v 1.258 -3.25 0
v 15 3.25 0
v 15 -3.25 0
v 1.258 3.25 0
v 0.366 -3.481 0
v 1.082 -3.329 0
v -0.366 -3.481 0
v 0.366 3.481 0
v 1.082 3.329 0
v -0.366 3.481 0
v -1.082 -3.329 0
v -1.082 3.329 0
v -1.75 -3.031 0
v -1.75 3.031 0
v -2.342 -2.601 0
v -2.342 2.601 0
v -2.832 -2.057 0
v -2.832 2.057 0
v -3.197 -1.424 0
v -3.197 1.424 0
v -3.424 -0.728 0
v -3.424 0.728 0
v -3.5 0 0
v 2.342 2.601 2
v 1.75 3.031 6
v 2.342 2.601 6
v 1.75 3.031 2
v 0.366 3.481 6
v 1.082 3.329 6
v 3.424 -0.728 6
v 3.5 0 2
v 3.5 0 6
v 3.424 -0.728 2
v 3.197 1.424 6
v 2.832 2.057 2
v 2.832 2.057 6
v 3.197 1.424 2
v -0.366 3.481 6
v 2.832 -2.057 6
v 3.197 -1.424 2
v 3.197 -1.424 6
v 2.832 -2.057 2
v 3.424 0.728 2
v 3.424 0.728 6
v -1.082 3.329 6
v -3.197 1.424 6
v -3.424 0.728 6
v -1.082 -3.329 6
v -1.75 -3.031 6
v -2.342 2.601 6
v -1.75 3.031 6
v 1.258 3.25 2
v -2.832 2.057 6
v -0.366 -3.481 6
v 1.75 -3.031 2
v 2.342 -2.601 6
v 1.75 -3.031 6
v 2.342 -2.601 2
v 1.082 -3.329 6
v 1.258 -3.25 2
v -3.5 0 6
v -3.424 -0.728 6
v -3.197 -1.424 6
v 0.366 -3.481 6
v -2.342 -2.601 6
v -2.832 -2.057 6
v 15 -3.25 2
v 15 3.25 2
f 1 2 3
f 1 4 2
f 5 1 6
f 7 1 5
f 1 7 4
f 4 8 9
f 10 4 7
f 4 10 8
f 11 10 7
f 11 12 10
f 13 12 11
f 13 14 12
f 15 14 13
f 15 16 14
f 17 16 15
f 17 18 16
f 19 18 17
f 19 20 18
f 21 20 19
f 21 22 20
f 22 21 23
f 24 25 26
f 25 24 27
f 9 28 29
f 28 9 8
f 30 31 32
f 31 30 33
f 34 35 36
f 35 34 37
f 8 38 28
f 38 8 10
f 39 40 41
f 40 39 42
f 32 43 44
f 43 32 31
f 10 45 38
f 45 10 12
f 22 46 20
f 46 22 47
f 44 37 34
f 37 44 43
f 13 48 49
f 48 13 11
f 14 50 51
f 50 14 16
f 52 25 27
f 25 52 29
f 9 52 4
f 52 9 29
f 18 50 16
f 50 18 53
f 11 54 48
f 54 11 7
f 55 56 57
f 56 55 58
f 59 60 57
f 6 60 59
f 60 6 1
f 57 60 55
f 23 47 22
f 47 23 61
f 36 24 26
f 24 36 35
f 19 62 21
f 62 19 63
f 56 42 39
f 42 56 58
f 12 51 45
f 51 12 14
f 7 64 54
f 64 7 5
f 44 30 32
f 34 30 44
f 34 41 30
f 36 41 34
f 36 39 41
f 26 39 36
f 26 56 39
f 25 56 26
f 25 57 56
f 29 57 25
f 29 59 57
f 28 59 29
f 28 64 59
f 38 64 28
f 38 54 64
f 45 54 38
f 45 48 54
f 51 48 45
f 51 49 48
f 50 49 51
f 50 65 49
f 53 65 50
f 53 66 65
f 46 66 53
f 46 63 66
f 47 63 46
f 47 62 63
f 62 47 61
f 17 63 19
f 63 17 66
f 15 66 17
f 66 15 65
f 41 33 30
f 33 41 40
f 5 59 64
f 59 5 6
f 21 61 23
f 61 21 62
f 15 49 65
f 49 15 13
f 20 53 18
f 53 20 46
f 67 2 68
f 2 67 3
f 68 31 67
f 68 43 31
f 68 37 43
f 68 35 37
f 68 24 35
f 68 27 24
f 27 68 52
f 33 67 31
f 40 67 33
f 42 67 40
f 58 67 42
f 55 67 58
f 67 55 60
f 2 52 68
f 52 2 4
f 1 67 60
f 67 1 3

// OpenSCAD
// WiFi Controlled Desk Lamp
// by stanoba http://www.thingiverse.com/stanoba/about
// https://www.thingiverse.com/thing:4697599
// https://github.com/stanoba/wifi-desk-lamp

translate([0,0,3]) cylinder(h = 6, d=7, center = true, $fn=30);
translate([7.5,0,1]) cube([15,6.5,2],center=true);
